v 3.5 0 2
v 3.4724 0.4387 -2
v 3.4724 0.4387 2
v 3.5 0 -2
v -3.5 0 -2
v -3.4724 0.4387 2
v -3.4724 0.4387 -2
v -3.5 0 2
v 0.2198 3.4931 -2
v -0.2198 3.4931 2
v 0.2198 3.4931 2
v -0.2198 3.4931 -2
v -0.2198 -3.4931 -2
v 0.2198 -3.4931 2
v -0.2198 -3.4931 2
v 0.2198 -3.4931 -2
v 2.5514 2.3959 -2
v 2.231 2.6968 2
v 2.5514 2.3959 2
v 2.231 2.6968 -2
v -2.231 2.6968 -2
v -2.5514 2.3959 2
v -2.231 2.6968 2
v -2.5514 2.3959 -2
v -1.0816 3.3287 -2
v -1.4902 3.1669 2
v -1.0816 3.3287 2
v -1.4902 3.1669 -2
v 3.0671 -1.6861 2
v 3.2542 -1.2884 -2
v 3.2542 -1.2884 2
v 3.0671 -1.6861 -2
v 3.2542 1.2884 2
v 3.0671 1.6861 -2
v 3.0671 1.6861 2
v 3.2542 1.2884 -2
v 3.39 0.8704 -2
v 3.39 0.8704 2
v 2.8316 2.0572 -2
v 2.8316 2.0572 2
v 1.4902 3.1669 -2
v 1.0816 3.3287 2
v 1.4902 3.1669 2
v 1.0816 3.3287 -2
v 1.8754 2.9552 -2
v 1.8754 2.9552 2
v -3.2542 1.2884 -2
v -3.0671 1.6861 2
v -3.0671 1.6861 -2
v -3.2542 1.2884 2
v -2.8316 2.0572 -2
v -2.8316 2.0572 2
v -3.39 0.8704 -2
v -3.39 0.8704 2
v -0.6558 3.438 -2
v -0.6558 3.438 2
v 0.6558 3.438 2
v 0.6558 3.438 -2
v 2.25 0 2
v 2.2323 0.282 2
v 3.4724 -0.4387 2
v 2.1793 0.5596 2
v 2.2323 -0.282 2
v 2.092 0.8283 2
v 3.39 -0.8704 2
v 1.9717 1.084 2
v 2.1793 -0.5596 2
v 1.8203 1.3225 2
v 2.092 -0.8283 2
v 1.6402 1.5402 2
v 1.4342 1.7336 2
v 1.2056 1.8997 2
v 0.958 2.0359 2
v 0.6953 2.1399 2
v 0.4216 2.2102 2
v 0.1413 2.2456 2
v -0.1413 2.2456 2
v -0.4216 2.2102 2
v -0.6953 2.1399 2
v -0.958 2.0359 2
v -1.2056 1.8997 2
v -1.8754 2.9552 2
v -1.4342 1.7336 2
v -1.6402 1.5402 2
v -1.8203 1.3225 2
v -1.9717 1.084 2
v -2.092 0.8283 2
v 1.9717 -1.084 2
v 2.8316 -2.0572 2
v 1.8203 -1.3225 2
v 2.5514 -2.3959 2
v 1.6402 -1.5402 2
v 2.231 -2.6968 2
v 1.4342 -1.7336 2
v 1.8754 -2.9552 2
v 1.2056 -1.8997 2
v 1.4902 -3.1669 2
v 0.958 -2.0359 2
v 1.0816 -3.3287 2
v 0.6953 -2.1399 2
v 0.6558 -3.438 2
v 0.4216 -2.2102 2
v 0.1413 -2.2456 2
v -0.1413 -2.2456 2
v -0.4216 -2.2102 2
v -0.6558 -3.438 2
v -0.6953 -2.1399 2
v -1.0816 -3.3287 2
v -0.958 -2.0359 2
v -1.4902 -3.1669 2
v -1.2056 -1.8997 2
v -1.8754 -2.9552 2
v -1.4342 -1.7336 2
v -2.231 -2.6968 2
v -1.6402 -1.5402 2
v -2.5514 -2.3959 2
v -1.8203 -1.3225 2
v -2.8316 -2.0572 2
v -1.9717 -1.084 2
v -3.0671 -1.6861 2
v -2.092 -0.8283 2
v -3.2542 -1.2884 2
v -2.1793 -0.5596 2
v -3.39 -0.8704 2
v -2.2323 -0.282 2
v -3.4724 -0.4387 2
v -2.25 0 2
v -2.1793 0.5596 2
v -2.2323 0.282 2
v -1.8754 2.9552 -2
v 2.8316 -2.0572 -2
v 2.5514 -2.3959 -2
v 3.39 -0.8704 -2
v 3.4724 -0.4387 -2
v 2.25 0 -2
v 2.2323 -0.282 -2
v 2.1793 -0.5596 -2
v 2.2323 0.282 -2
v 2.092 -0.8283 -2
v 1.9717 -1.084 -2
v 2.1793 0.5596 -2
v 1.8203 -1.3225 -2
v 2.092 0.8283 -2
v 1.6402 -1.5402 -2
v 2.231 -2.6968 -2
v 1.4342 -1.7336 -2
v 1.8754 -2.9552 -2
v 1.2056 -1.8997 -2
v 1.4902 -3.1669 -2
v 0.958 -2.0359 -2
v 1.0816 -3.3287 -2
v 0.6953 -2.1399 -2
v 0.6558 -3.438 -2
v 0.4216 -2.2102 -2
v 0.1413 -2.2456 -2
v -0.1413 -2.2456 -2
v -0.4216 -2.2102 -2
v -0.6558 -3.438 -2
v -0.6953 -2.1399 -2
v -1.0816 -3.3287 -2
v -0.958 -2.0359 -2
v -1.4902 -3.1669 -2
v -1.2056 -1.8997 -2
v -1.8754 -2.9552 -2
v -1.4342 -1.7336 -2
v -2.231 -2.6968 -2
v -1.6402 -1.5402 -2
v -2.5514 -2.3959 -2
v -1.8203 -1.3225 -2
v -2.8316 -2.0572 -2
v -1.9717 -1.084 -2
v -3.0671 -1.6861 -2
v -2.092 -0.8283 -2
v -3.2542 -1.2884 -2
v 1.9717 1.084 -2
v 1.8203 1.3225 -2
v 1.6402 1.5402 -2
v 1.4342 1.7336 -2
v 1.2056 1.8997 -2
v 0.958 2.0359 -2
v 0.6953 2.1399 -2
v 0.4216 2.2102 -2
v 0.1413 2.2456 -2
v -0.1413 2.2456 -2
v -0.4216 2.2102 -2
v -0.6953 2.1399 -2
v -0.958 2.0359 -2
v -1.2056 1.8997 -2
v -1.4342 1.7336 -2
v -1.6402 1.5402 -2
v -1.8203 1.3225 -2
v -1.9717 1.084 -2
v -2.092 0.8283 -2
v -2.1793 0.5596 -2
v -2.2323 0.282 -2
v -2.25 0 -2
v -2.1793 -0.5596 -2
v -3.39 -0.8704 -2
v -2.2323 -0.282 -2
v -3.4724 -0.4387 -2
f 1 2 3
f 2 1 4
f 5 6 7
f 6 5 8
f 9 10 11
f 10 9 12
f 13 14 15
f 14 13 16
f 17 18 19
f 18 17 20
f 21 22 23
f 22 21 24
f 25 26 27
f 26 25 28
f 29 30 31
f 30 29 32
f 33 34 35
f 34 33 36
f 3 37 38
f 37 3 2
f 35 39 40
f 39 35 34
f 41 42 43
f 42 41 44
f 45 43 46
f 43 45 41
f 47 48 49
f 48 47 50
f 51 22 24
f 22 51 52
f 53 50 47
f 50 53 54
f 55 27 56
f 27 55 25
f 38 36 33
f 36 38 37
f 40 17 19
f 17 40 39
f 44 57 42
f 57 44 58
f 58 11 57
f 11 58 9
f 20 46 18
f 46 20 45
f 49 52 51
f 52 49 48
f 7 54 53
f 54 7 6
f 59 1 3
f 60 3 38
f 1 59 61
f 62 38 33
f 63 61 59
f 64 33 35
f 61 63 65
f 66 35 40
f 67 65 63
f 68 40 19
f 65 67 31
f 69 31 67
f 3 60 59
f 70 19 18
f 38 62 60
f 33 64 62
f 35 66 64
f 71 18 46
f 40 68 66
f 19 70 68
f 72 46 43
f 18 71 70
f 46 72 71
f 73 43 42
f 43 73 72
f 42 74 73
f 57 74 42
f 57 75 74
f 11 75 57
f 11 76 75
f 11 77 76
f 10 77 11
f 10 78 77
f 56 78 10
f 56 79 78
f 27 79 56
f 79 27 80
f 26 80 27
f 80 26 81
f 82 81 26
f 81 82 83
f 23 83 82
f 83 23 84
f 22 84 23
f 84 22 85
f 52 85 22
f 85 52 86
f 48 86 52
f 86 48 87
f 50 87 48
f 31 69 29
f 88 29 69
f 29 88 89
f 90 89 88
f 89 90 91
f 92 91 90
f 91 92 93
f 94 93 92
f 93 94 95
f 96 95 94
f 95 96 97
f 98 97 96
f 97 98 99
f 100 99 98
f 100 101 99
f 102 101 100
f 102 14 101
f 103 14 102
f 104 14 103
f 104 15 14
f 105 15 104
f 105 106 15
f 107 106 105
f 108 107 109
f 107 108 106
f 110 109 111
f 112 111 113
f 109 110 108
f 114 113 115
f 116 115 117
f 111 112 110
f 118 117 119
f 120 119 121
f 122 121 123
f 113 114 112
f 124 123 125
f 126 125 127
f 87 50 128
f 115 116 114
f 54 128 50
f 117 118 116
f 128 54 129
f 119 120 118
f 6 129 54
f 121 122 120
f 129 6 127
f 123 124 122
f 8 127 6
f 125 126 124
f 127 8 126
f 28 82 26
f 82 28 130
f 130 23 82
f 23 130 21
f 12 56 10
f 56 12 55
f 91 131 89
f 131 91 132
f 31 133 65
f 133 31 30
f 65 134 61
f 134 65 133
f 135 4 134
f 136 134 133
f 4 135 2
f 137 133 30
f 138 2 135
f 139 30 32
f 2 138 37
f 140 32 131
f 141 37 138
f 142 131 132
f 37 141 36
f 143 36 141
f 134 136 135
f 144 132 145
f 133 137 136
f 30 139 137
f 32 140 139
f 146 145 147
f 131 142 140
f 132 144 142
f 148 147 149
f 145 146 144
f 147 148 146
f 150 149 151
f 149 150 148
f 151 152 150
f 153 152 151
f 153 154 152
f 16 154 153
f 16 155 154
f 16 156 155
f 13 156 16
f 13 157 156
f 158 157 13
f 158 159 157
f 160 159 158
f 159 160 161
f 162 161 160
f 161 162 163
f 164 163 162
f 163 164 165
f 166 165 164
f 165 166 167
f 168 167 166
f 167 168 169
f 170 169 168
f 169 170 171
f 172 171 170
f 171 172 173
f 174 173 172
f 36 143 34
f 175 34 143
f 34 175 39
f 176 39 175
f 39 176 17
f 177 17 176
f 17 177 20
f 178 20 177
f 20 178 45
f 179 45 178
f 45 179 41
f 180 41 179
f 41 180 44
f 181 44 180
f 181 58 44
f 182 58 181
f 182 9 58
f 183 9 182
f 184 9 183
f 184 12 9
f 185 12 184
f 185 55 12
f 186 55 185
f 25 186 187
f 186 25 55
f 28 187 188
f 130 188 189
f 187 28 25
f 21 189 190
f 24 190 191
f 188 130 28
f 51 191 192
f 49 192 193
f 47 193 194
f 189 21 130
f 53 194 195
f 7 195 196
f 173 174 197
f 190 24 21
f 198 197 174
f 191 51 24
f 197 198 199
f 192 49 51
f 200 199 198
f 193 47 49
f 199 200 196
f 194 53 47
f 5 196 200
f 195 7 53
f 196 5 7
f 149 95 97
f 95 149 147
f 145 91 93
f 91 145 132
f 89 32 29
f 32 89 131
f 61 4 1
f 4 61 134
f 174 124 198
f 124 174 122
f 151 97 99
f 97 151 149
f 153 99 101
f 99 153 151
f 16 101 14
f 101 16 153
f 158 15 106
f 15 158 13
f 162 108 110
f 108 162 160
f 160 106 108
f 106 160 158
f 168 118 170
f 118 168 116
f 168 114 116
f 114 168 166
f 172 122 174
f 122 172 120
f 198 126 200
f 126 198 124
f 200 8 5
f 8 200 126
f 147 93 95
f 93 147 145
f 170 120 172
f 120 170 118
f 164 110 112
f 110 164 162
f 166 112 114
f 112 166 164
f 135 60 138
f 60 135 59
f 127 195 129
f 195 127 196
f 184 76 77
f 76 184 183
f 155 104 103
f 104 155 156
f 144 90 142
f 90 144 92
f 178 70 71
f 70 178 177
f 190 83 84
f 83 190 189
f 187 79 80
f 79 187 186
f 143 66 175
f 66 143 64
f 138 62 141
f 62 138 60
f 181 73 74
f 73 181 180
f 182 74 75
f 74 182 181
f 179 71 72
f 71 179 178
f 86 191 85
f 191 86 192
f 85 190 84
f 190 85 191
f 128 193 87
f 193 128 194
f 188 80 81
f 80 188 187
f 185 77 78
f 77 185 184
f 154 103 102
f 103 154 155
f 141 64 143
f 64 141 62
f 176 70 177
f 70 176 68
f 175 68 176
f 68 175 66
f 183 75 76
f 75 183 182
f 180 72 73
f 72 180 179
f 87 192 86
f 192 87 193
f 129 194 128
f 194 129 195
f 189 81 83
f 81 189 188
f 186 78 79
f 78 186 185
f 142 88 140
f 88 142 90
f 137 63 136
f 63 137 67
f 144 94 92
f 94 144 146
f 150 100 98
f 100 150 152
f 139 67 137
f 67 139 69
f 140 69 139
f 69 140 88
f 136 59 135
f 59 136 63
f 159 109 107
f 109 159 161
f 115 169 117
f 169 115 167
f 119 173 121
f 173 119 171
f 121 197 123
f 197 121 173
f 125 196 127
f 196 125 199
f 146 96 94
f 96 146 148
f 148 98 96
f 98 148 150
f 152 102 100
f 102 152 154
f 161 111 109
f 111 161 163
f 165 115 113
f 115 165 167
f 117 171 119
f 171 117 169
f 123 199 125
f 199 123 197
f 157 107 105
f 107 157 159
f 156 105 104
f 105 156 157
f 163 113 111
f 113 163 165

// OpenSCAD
$fn = 50;


difference() {
	union() {
		translate(v = [0, 0, -2.0000000000]) {
			cylinder(h = 4, r = 3.5000000000);
		}
	}
	union() {
		translate(v = [0, 0, -100.0000000000]) {
			cylinder(h = 200, r = 2.2500000000);
		}
	}
}
